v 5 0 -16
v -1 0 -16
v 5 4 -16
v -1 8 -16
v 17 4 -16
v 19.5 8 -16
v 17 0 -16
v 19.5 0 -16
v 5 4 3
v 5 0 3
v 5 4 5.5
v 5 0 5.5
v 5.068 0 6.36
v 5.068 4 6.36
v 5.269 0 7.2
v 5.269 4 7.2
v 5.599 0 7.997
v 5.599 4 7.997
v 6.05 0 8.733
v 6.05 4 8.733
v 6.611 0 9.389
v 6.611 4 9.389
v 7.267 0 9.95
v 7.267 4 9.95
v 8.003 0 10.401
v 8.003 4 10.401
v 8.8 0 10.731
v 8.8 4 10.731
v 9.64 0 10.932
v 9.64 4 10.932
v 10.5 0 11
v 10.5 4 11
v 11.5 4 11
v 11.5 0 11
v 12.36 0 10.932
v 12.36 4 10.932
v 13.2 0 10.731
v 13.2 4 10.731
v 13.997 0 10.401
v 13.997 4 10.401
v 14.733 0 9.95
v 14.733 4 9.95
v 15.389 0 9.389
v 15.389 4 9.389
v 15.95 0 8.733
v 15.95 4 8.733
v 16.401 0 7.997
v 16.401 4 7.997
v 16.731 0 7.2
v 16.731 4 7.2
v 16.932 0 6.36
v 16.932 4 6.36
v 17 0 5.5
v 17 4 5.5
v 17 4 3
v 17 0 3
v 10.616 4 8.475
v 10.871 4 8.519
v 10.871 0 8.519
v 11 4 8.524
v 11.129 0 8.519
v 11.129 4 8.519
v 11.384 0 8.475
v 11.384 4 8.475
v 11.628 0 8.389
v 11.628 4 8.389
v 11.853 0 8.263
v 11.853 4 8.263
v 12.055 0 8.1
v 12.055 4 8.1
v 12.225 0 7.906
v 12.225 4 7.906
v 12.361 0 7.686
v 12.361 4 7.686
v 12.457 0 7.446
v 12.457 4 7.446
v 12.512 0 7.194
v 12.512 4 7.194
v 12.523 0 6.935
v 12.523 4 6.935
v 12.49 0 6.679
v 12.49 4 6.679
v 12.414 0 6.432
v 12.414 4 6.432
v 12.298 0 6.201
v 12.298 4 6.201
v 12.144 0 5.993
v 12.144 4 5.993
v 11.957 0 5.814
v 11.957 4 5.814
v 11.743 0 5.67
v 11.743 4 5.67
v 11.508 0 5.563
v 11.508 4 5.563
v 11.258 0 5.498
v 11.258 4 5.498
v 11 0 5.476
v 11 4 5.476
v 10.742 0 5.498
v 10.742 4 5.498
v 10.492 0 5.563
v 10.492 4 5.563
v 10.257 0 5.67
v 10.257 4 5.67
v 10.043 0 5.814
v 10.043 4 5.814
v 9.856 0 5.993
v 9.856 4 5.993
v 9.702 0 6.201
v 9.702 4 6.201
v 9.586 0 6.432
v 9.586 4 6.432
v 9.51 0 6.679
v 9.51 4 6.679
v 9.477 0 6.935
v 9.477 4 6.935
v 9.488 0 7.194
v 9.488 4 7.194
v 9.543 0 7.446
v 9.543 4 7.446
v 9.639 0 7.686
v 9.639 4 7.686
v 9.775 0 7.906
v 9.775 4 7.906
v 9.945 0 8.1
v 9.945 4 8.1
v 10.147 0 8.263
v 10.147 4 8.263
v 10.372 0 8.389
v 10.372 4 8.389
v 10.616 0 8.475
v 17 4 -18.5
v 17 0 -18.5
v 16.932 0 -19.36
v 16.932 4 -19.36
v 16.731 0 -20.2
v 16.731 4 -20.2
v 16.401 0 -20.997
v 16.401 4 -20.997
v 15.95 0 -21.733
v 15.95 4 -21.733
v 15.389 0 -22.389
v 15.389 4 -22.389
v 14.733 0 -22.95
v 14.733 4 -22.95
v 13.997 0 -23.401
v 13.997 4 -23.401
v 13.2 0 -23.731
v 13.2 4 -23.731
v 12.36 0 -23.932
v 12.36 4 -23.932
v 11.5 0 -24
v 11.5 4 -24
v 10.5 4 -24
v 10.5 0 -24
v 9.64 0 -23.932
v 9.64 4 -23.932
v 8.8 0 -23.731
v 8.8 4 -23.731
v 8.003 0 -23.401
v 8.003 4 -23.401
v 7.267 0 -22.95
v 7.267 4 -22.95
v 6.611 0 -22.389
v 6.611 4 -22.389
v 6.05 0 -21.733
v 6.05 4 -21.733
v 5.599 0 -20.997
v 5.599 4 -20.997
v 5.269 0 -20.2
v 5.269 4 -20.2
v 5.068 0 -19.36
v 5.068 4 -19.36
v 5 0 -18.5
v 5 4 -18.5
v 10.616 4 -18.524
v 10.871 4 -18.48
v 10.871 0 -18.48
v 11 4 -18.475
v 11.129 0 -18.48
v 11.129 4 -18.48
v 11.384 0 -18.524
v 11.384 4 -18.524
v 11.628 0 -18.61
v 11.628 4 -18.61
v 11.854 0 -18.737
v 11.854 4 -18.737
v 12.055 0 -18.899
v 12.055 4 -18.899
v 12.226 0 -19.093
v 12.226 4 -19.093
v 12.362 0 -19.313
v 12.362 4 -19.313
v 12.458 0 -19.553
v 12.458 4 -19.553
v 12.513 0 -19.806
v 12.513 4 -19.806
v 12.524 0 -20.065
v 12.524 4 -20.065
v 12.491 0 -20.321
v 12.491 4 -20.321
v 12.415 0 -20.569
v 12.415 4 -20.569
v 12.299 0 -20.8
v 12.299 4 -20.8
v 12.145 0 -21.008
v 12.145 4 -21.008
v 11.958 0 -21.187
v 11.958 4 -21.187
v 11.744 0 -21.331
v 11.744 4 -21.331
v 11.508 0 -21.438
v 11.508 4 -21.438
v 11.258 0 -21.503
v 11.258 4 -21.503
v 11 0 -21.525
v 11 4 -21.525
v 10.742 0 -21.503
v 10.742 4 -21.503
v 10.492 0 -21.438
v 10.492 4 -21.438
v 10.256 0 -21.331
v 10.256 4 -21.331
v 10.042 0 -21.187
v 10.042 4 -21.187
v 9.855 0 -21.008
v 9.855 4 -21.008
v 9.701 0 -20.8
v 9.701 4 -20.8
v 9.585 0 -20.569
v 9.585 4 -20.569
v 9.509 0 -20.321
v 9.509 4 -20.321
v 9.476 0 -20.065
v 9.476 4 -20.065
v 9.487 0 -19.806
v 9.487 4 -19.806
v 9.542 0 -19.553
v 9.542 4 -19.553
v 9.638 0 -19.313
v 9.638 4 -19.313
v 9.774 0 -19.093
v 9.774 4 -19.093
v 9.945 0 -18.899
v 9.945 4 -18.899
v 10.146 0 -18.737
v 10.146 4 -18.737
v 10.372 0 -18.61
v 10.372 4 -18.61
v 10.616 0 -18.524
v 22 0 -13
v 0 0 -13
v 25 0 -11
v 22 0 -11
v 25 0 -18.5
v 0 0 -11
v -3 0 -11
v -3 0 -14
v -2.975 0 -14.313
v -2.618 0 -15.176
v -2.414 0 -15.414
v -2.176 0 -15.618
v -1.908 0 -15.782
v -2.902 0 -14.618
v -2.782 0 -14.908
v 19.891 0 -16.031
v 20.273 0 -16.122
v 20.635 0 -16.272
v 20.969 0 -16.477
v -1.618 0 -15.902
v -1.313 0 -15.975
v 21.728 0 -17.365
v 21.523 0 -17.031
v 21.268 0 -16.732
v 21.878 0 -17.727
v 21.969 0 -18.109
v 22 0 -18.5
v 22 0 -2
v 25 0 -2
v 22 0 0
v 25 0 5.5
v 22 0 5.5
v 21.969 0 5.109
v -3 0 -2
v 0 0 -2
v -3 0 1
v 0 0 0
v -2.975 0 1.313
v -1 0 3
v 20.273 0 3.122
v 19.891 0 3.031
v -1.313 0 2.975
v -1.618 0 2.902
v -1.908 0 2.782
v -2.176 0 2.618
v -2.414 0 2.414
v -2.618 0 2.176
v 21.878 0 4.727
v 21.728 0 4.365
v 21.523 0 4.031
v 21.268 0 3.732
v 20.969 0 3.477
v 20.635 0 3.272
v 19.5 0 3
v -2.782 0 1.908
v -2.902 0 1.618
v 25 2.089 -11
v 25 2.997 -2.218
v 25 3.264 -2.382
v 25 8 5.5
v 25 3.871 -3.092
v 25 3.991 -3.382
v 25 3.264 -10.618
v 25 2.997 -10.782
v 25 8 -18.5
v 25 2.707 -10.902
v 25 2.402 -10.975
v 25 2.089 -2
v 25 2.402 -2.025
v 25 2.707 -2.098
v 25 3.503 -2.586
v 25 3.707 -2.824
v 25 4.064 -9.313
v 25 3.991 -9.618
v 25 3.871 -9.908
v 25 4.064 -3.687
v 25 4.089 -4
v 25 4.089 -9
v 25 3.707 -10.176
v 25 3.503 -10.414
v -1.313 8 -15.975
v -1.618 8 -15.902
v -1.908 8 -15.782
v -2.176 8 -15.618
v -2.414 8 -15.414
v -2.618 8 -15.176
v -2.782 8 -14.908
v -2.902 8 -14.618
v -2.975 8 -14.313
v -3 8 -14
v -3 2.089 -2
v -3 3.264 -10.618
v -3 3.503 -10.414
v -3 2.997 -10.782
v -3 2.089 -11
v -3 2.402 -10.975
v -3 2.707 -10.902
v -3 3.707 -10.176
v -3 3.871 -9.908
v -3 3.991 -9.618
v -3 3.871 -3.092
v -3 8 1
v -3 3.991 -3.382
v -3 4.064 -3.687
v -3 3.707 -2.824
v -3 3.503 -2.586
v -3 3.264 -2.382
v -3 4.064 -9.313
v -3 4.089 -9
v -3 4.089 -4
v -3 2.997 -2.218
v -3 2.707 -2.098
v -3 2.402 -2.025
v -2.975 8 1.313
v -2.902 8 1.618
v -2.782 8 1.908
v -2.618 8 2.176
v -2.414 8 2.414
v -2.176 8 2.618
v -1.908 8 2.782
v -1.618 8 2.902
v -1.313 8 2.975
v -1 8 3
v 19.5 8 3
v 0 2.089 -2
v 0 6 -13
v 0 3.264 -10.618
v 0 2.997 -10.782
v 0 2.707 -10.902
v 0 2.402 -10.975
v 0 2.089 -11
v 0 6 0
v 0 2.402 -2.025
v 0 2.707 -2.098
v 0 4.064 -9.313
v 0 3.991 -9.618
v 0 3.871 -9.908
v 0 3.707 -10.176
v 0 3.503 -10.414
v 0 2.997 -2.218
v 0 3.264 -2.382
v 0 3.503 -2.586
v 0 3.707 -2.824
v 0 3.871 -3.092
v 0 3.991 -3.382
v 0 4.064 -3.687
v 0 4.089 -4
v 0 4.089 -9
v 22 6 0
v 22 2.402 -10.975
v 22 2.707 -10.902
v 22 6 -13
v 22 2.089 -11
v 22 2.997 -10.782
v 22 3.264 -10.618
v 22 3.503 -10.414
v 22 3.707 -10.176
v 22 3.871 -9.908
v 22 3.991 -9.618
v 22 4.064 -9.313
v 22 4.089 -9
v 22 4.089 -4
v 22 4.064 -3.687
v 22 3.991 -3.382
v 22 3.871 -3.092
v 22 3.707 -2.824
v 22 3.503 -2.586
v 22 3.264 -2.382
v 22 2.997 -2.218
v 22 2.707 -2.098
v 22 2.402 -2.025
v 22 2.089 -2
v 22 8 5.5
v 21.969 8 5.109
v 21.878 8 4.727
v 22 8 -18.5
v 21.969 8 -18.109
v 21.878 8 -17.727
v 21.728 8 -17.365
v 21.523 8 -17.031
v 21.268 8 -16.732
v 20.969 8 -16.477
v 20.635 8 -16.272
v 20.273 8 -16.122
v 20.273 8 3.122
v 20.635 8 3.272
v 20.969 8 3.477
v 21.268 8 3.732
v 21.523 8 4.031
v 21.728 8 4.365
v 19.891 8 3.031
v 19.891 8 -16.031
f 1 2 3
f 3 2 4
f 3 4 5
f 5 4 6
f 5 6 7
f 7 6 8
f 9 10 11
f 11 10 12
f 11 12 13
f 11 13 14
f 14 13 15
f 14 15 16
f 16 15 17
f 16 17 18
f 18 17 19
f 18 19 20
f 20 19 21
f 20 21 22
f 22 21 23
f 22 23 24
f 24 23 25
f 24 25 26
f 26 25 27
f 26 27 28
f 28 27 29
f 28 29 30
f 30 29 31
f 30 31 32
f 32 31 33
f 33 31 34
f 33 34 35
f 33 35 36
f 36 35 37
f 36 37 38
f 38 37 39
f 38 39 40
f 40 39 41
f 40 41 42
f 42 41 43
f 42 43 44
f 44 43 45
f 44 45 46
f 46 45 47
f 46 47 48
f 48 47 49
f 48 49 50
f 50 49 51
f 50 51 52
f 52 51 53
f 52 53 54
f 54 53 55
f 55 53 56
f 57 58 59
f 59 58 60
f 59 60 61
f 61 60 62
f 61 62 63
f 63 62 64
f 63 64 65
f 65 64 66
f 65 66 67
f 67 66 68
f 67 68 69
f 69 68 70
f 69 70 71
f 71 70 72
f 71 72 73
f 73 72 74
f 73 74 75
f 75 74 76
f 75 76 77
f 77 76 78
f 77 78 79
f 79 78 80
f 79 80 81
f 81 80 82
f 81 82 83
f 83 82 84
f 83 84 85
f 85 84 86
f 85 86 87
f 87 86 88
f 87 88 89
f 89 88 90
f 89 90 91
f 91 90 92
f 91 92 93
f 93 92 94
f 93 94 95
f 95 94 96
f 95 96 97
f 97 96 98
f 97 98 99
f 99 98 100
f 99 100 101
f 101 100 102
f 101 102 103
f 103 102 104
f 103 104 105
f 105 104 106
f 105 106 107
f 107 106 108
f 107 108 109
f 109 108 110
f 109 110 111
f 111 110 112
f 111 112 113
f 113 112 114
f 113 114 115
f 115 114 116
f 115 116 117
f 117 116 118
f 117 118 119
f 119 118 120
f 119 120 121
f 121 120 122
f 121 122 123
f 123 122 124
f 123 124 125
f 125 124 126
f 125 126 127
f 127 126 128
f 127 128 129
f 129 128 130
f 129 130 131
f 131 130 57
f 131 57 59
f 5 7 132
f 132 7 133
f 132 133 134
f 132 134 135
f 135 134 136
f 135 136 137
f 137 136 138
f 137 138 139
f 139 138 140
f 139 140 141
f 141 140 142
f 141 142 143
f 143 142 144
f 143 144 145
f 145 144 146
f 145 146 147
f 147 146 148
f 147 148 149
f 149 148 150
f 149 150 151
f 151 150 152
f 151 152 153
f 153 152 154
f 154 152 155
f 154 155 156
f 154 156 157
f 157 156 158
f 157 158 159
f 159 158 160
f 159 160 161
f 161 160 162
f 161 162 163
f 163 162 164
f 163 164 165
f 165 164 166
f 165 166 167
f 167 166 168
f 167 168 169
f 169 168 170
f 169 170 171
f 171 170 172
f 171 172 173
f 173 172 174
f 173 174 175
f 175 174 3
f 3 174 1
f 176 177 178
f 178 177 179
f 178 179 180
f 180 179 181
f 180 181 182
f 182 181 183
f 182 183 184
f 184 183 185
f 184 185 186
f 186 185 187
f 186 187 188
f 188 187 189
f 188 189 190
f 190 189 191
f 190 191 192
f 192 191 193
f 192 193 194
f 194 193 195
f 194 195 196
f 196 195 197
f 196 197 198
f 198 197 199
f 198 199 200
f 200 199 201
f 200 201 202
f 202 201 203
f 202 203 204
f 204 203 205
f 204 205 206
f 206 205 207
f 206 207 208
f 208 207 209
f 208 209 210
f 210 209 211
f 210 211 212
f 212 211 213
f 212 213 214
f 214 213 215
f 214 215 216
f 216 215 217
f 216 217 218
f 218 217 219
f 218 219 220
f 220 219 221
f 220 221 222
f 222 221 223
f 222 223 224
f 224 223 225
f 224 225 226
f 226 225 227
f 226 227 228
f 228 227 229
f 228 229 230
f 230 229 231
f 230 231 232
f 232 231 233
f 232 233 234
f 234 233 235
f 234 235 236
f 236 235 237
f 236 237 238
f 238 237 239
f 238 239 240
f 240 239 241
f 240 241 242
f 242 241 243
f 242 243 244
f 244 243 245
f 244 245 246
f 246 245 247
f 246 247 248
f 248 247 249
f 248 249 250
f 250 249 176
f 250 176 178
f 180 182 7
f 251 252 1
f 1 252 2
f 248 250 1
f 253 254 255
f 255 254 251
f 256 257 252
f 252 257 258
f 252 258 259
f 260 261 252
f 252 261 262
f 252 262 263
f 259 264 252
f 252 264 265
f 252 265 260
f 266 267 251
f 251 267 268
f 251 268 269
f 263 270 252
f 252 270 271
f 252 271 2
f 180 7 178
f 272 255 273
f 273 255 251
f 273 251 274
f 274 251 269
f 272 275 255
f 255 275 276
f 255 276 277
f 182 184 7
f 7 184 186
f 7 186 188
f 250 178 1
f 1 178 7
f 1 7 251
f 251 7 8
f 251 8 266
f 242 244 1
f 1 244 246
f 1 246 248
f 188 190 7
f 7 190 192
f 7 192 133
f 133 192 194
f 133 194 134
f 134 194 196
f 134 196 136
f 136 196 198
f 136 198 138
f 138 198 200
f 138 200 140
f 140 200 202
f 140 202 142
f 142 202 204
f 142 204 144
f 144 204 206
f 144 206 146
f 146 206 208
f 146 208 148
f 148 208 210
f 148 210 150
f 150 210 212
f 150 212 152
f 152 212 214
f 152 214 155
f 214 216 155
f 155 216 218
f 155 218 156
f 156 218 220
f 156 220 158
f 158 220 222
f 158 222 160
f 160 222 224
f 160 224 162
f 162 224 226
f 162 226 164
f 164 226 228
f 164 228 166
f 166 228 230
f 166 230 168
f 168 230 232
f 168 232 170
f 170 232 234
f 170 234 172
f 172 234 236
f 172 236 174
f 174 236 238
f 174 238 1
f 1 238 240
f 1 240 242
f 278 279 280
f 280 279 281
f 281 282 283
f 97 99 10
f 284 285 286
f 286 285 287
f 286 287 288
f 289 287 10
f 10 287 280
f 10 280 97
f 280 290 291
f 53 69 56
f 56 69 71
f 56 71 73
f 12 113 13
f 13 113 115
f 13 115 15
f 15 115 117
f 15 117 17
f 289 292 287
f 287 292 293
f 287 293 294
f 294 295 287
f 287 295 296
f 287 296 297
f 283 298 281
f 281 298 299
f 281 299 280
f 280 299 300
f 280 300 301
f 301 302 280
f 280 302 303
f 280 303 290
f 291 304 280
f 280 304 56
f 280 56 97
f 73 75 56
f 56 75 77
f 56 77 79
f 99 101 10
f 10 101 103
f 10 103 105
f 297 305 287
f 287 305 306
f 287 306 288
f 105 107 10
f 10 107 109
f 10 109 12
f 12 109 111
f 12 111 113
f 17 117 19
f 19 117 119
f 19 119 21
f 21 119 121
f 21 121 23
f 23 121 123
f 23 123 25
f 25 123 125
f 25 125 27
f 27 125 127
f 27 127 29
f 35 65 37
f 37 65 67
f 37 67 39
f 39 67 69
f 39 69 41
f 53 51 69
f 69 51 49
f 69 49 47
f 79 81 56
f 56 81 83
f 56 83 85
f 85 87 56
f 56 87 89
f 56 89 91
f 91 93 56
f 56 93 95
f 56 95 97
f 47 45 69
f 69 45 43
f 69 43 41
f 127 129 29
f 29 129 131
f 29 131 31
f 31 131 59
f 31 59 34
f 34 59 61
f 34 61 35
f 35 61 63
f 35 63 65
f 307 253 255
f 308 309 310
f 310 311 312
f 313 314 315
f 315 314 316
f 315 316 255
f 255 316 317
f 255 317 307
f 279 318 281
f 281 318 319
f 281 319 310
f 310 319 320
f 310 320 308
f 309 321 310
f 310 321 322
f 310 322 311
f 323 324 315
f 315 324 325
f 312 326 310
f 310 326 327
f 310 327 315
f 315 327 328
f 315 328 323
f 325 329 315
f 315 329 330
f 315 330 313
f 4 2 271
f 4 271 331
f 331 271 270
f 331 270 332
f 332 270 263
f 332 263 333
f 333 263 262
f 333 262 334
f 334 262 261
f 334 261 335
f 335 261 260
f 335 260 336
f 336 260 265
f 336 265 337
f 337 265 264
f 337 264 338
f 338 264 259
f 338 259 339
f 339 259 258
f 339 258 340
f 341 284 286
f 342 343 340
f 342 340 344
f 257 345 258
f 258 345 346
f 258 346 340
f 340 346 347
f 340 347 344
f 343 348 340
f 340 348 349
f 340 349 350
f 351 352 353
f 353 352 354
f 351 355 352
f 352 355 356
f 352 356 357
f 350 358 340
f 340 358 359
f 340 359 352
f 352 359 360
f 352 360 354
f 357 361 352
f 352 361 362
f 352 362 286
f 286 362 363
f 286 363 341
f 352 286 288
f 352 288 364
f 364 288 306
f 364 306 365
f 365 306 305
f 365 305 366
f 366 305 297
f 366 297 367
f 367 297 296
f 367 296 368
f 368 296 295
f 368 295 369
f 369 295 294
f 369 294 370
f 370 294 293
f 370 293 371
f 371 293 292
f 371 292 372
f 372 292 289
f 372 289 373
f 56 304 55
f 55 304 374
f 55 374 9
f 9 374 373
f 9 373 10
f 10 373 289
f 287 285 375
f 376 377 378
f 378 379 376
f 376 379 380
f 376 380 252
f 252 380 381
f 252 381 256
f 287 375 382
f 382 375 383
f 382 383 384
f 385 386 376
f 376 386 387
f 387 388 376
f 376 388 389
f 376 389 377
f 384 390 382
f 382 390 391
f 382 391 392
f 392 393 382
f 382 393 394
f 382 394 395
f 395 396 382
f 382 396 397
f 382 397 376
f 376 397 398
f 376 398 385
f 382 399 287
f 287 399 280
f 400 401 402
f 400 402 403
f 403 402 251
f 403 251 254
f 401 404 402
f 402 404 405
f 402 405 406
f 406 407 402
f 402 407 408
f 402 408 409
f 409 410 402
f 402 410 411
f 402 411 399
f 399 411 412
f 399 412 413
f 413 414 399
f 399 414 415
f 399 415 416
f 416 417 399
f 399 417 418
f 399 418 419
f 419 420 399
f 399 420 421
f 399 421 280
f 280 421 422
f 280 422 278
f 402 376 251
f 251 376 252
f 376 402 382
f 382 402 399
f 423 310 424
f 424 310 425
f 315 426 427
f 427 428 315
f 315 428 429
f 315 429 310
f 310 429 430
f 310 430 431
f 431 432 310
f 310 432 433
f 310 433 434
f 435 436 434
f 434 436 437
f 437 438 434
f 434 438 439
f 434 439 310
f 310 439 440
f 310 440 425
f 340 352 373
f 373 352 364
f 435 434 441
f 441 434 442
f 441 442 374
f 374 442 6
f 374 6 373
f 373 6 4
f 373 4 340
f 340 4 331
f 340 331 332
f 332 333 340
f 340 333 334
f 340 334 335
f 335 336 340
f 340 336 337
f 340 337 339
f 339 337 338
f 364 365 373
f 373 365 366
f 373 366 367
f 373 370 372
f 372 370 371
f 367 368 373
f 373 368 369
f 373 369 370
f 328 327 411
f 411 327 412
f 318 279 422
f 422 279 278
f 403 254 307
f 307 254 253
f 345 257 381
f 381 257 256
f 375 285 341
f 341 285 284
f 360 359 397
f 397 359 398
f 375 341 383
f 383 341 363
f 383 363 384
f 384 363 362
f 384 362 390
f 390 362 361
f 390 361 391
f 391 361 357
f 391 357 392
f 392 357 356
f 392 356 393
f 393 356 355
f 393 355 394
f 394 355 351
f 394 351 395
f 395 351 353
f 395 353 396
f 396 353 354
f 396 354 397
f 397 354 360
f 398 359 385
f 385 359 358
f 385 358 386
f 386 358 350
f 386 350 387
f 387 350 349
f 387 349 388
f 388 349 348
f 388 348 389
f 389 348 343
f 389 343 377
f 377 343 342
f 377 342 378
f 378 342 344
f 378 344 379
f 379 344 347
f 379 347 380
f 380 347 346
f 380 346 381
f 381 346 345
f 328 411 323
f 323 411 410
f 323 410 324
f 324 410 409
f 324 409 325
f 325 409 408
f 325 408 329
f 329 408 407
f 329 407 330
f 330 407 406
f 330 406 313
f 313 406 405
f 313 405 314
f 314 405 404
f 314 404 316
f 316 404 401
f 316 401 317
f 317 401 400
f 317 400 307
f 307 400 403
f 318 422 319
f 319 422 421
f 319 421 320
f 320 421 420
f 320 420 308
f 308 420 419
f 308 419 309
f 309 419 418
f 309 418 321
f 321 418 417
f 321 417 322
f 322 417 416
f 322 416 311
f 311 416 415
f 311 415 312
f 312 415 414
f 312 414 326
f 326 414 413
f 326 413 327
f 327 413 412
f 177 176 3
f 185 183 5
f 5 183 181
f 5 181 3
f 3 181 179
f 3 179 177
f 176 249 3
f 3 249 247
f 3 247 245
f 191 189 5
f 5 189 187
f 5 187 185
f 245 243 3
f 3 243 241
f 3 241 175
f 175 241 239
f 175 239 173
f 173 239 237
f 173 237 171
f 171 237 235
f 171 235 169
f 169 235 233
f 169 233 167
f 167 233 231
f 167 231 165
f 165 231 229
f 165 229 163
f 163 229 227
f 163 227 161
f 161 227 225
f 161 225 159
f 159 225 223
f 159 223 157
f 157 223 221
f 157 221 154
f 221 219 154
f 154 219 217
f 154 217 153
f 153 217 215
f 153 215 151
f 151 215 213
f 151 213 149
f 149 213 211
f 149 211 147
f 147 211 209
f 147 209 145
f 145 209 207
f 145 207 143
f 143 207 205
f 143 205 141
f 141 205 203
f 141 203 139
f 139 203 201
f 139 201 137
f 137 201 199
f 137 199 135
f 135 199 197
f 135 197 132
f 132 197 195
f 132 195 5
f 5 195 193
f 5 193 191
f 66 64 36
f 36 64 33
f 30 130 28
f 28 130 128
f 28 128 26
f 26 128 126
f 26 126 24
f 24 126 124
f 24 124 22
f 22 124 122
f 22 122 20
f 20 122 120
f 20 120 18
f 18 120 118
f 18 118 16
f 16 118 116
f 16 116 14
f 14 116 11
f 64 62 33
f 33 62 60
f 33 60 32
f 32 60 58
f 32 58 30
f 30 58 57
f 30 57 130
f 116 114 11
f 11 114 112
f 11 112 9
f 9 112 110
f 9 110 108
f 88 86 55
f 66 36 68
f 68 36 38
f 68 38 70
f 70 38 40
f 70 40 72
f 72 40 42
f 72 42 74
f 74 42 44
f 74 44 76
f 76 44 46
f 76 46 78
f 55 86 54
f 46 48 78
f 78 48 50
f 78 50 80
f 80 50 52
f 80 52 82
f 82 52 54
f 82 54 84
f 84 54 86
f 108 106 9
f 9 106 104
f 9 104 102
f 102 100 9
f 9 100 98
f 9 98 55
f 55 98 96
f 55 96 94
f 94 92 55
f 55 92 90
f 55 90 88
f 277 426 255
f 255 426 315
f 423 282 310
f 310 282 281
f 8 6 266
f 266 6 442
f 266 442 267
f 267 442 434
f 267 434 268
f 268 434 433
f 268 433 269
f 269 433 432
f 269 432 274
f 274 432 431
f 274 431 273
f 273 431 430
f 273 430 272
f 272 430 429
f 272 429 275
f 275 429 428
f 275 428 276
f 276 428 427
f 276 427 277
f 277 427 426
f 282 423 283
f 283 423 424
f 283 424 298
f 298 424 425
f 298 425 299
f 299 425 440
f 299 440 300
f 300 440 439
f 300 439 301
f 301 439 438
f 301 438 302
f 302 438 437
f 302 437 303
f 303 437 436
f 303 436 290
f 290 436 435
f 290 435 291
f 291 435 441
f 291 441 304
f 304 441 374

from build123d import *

# Parameters (mm, degrees)
SKETCH1_W           = 22
SKETCH1_H           = 13
BOSS_EXTRUDE1_DEPTH = 6
BOSS_EXTRUDE2_DEPTH = 2
BOSS_EXTRUDE3_DEPTH = 8
SKETCH4_R           = 1.525
SKETCH4_R_2         = 1.524
CUT_EXTRUDE1_DEPTH  = 36.566838488
SKETCH5_W           = 9
SKETCH5_H           = 4.088652256
CUT_EXTRUDE2_DEPTH  = 38.735924528
FILLET1_R           = 2
SKETCH6_W           = 12
SKETCH6_H           = 13.009000019
SKETCH6_W_2         = 15.838286437
CUT_EXTRUDE3_DEPTH  = 4
SKETCH7_W           = 2.5
SKETCH7_H           = 8
BOSS_EXTRUDE5_DEPTH = 3
FILLET3_R           = 2.5
FILLET4_R           = 2.5


with BuildPart() as part:
    # Sketch1 → Boss-Extrude1 (new body)
    with BuildSketch(Plane(origin=(0, 0, 0), x_dir=(1, 0, 0), z_dir=(0, 1, 0))):
        with BuildLine():
            Line((-1, -3), (23, -3))
            Line((23, -3), (25, -3))
            Line((25, -3), (25, -1))
            Line((25, -1), (25, 14))
            Line((25, 14), (25, 16))
            Line((25, 16), (23, 16))
            Line((23, 16), (-1, 16))
            ThreePointArc((-1, 16), (-2.414213562, 15.414213562), (-3, 14))
            Line((-3, 14), (-3, -1))
            ThreePointArc((-3, -1), (-2.414213562, -2.414213562), (-1, -3))
        make_face()
        with Locations((11, 6.5)):
            Rectangle(SKETCH1_W, SKETCH1_H, mode=Mode.SUBTRACT)
    extrude(amount=BOSS_EXTRUDE1_DEPTH)

    # Sketch2 → Boss-Extrude2 (add)
    with BuildSketch(Plane(origin=(0, 6, 0), x_dir=(1, 0, 0), z_dir=(0, 1, 0))):
        with BuildLine():
            Line((25, 14), (25, -1))
            Line((25, -1), (25, -3))
            Line((25, -3), (23, -3))
            Line((23, -3), (-1, -3))
            ThreePointArc((-1, -3), (-2.414213562, -2.414213562), (-3, -1))
            Line((-3, -1), (-3, 14))
            ThreePointArc((-3, 14), (-2.414213562, 15.414213562), (-1, 16))
            Line((-1, 16), (23, 16))
            Line((23, 16), (25, 16))
            Line((25, 16), (25, 14))
        make_face()
    extrude(amount=BOSS_EXTRUDE2_DEPTH)

    # Sketch3 → Boss-Extrude3 (add)
    with BuildSketch(Plane.XZ):
        with BuildLine():
            Line((5, 3), (17, 3))
            Line((17, 3), (17, 5.5))
            ThreePointArc((17, 5.5), (15.389087297, 9.389087297), (11.5, 11))
            Line((11.5, 11), (10.5, 11))
            ThreePointArc((10.5, 11), (6.610912703, 9.389087297), (5, 5.5))
            Line((5, 5.5), (5, 3))
        make_face()
        with BuildLine():
            Line((17, -16), (5, -16))
            Line((5, -16), (5, -18.5))
            ThreePointArc((5, -18.5), (6.610912703, -22.389087297), (10.5, -24))
            Line((10.5, -24), (11.5, -24))
            ThreePointArc((11.5, -24), (15.389087297, -22.389087297), (17, -18.5))
            Line((17, -18.5), (17, -16))
        make_face()
    extrude(amount=-BOSS_EXTRUDE3_DEPTH)

    # Sketch4 → Cut-Extrude1 (cut, through all)
    with BuildSketch(Plane(origin=(0, 0, 0), x_dir=(-1, 0, 0), z_dir=(0, -1, 0))):
        with Locations(Location((-11, 20, 0), (0, 0, 90))):
            Circle(SKETCH4_R)
        with Locations(Location((-11, -7, 0), (0, 0, 90))):
            Circle(SKETCH4_R_2)
    extrude(amount=-CUT_EXTRUDE1_DEPTH, mode=Mode.SUBTRACT)

    # Sketch5 → Cut-Extrude2 (cut, through all)
    with BuildSketch(Plane(origin=(25, 0, 0), x_dir=(0, 0, -1), z_dir=(1, 0, 0))):
        with Locations((6.5, 2.044326128)):
            Rectangle(SKETCH5_W, SKETCH5_H)
    extrude(amount=-CUT_EXTRUDE2_DEPTH, mode=Mode.SUBTRACT)

    # Fillet1
    fillet1_edges = [part.edges().sort_by_distance(p)[0] for p in [
        (-1.5, 4.088652256, -11),
        (-1.5, 4.088652256, -2),
        (23.5, 4.088652256, -11),
        (23.5, 4.088652256, -2),
    ]]
    fillet(fillet1_edges, radius=FILLET1_R)

    # Sketch6 → Cut-Extrude3 (cut)
    with BuildSketch(Plane(origin=(0, 8, 0), x_dir=(1, 0, 0), z_dir=(0, 1, 0))):
        with Locations((11, 22.504500009)):
            Rectangle(SKETCH6_W, SKETCH6_H)
        with Locations((11.149066226, -9.50450001)):
            Rectangle(SKETCH6_W_2, SKETCH6_H)
    extrude(amount=-CUT_EXTRUDE3_DEPTH, mode=Mode.SUBTRACT)

    # Sketch7 → Boss-Extrude5 (add)
    with BuildSketch(Plane(origin=(25, 0, 0), x_dir=(0, 0, -1), z_dir=(1, 0, 0))):
        with Locations((17.25, 4)):
            Rectangle(SKETCH7_W, SKETCH7_H)
        with Locations((-4.25, 4)):
            Rectangle(SKETCH7_W, SKETCH7_H)
    extrude(amount=-BOSS_EXTRUDE5_DEPTH)

    # Fillet3
    fillet3_edges = [part.edges().sort_by_distance(p)[0] for p in [
        (22, 4, -16),
    ]]
    fillet(fillet3_edges, radius=FILLET3_R - 0.0001)  # a hair under: the kernel refuses the full size

    # Fillet4
    fillet4_edges = [part.edges().sort_by_distance(p)[0] for p in [
        (22, 4, 3),
    ]]
    fillet(fillet4_edges, radius=FILLET4_R - 0.0001)  # a hair under: the kernel refuses the full size


solid = part.part
